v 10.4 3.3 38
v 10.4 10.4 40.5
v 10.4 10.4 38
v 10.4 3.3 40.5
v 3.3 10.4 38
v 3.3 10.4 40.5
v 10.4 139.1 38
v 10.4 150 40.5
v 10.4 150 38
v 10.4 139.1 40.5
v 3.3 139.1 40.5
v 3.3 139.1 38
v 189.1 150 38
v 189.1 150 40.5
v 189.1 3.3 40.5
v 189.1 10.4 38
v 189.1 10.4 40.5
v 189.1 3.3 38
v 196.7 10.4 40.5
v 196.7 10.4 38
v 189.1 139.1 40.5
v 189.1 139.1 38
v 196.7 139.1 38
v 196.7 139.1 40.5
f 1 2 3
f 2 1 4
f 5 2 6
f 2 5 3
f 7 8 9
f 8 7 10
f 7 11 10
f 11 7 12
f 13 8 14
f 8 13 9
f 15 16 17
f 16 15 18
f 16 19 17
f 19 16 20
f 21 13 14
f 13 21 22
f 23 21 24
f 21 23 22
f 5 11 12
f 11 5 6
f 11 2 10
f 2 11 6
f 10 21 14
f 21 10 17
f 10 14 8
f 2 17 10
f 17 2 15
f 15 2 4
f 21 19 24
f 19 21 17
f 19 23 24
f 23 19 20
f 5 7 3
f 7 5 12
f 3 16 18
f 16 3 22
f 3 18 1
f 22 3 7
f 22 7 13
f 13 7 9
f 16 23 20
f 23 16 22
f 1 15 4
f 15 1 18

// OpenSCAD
// file: params.scad
// =====================================================================
//  params.scad  -  Kabelbox, frei konfigurierbar (einzige Wahrheitsquelle)
//  Koordinaten: x=Breite, y=Tiefe (Front y=0, Rück y=box_d), z=Höhe.
//  4 Eckpfosten (flush) mit Nuten -> 4 entnehmbare Voronoi-Wände;
//  glatter Schiebedeckel von hinten; Füße; alles bündig.
// =====================================================================

/* [Maße] */
box_w = 200;   // Breite X (mm)
box_d = 150;   // Tiefe Y (mm)
box_h = 41.8;  // Höhe Z (mm, ohne Füße) -> 35 mm nutzbar (Boden bis Deckel)

/* [Kabellöcher je Wand] */
//  none = keins | left/center/right = Position (unten offener Schlitz)
cable_front = "none";   // [none:keins, left:links, center:mitte, right:rechts]
cable_back  = "right";  // [none:keins, left:links, center:mitte, right:rechts]  (1. Kiste)
cable_left  = "none";   // [none:keins, left:links, center:mitte, right:rechts]
cable_right = "right";  // [none:keins, left:links, center:mitte, right:rechts]  (1. Kiste)

// ---- Struktur -------------------------------------------------------
wall_t     = 3.0;   // Wandstärke (Außenfläche bündig)
floor_t    = 3.0;   // Bodenstärke
fillet_r   = 5.0;   // Kantenrundung R5 (wie Holder)
post_sz    = 10.0;  // Eckpfosten-Bein (X=Y), flush in der Ecke
foot_r     = 5.0;   // Fuß
foot_h     = 5.0;
foot_inset = 5.0;

// ---- Feder & Nut: Wand <-> Pfosten ----------------------------------
//  Feder (Rippe) sitzt hinter einer Front-Skin des Pfostens -> flush & in
//  Querrichtung gefangen (Prinzip wie Holder-Rückwand).
front_skin = 1.0;   // Pfosten-Skin vor der Feder (Außenseite)
tongue_d   = 4.0;   // Federtiefe in den Pfosten (Längsrichtung der Wand)
rail_clear = 0.3;   // Spiel Feder<->Nut
rail_lead  = 1.2;   // 45°-Einführfase unten an der Feder

// ---- Deckel (glatt, von hinten eingeschoben) ------------------------
//  Vorne/links/rechts: Lippe übergreift den Deckelrand (3-seitig gefangen);
//  Rückwand niedriger -> Deckel läuft drüber, schließt hinten bündig ab.
lid_t      = 2.5; // Deckeldicke
lid_lip_t  = 1.0; // Höhe/Überdeckung der Lippe über dem Deckelrand
lid_ov     = 3.0; // Lippen-Überstand nach innen (Deckel-Eingriff)
lid_clear  = 0.3; // Spiel Deckel

// ---- Kabelloch (unten offen, wie Zahnbürstenhalter) -----------------
cable_w = 12;   // Schlitzbreite (X entlang der Wand)
cable_h = 12;   // Oberkante des Schlitzes über dem Boden (Z)

// ---- Voronoi (Wand-Relief) ------------------------------------------
voro_seed  = 11;
voro_cell  = 14;    // Zellabstand Wand-Relief
voro_strut = 1.8;   // Stegbreite
relief_h   = 1.2;   // Reliefhöhe (erhaben)

// ---- abgeleitete Maße / Helfer (NICHT ändern) -----------------------
// lichte Spannweiten zwischen den Pfosten
span_w = box_w - 2*post_sz;   // Front/Rück-Wandlänge (X)
span_d = box_d - 2*post_sz;   // Links/Rechts-Wandlänge (Y)
wall_h = box_h - floor_t;     // Wandhöhe über dem Boden

$fn = 32;
// main file
// =====================================================================
//  lid.scad  -  glatter Deckel. Gleitet von hinten unter die Lippen von
//  Front/Links/Rechts (3-seitig gefangen), läuft über die niedrigere
//  Rückwand und schließt hinten bündig (y=box_d) ab. Eck-Aussparungen
//  für die 4 Pfosten. Oberseite leicht versenkt (unter den Lippen).
// =====================================================================
include <params.scad>

module lid() {
    c    = lid_clear;
    x0   = wall_t + c;  x1 = box_w - wall_t - c;
    y0   = wall_t + c;  y1 = box_d;                 // hinten bündig (über Rückwand)
    ztop = box_h - lid_lip_t - lid_clear;
    zbot = ztop - lid_t;
    difference() {
        translate([x0, y0, zbot]) cube([x1 - x0, y1 - y0, lid_t]);
        // 4 Eck-Aussparungen für die Pfosten
        for (cx = [0, 1], cy = [0, 1])
            translate([cx*(box_w - post_sz - 0.4) - 0.5,
                       cy*(box_d - post_sz - 0.4) - 0.5, zbot - 1])
                cube([post_sz + 0.9, post_sz + 0.9, lid_t + 2]);
    }
}

lid();
